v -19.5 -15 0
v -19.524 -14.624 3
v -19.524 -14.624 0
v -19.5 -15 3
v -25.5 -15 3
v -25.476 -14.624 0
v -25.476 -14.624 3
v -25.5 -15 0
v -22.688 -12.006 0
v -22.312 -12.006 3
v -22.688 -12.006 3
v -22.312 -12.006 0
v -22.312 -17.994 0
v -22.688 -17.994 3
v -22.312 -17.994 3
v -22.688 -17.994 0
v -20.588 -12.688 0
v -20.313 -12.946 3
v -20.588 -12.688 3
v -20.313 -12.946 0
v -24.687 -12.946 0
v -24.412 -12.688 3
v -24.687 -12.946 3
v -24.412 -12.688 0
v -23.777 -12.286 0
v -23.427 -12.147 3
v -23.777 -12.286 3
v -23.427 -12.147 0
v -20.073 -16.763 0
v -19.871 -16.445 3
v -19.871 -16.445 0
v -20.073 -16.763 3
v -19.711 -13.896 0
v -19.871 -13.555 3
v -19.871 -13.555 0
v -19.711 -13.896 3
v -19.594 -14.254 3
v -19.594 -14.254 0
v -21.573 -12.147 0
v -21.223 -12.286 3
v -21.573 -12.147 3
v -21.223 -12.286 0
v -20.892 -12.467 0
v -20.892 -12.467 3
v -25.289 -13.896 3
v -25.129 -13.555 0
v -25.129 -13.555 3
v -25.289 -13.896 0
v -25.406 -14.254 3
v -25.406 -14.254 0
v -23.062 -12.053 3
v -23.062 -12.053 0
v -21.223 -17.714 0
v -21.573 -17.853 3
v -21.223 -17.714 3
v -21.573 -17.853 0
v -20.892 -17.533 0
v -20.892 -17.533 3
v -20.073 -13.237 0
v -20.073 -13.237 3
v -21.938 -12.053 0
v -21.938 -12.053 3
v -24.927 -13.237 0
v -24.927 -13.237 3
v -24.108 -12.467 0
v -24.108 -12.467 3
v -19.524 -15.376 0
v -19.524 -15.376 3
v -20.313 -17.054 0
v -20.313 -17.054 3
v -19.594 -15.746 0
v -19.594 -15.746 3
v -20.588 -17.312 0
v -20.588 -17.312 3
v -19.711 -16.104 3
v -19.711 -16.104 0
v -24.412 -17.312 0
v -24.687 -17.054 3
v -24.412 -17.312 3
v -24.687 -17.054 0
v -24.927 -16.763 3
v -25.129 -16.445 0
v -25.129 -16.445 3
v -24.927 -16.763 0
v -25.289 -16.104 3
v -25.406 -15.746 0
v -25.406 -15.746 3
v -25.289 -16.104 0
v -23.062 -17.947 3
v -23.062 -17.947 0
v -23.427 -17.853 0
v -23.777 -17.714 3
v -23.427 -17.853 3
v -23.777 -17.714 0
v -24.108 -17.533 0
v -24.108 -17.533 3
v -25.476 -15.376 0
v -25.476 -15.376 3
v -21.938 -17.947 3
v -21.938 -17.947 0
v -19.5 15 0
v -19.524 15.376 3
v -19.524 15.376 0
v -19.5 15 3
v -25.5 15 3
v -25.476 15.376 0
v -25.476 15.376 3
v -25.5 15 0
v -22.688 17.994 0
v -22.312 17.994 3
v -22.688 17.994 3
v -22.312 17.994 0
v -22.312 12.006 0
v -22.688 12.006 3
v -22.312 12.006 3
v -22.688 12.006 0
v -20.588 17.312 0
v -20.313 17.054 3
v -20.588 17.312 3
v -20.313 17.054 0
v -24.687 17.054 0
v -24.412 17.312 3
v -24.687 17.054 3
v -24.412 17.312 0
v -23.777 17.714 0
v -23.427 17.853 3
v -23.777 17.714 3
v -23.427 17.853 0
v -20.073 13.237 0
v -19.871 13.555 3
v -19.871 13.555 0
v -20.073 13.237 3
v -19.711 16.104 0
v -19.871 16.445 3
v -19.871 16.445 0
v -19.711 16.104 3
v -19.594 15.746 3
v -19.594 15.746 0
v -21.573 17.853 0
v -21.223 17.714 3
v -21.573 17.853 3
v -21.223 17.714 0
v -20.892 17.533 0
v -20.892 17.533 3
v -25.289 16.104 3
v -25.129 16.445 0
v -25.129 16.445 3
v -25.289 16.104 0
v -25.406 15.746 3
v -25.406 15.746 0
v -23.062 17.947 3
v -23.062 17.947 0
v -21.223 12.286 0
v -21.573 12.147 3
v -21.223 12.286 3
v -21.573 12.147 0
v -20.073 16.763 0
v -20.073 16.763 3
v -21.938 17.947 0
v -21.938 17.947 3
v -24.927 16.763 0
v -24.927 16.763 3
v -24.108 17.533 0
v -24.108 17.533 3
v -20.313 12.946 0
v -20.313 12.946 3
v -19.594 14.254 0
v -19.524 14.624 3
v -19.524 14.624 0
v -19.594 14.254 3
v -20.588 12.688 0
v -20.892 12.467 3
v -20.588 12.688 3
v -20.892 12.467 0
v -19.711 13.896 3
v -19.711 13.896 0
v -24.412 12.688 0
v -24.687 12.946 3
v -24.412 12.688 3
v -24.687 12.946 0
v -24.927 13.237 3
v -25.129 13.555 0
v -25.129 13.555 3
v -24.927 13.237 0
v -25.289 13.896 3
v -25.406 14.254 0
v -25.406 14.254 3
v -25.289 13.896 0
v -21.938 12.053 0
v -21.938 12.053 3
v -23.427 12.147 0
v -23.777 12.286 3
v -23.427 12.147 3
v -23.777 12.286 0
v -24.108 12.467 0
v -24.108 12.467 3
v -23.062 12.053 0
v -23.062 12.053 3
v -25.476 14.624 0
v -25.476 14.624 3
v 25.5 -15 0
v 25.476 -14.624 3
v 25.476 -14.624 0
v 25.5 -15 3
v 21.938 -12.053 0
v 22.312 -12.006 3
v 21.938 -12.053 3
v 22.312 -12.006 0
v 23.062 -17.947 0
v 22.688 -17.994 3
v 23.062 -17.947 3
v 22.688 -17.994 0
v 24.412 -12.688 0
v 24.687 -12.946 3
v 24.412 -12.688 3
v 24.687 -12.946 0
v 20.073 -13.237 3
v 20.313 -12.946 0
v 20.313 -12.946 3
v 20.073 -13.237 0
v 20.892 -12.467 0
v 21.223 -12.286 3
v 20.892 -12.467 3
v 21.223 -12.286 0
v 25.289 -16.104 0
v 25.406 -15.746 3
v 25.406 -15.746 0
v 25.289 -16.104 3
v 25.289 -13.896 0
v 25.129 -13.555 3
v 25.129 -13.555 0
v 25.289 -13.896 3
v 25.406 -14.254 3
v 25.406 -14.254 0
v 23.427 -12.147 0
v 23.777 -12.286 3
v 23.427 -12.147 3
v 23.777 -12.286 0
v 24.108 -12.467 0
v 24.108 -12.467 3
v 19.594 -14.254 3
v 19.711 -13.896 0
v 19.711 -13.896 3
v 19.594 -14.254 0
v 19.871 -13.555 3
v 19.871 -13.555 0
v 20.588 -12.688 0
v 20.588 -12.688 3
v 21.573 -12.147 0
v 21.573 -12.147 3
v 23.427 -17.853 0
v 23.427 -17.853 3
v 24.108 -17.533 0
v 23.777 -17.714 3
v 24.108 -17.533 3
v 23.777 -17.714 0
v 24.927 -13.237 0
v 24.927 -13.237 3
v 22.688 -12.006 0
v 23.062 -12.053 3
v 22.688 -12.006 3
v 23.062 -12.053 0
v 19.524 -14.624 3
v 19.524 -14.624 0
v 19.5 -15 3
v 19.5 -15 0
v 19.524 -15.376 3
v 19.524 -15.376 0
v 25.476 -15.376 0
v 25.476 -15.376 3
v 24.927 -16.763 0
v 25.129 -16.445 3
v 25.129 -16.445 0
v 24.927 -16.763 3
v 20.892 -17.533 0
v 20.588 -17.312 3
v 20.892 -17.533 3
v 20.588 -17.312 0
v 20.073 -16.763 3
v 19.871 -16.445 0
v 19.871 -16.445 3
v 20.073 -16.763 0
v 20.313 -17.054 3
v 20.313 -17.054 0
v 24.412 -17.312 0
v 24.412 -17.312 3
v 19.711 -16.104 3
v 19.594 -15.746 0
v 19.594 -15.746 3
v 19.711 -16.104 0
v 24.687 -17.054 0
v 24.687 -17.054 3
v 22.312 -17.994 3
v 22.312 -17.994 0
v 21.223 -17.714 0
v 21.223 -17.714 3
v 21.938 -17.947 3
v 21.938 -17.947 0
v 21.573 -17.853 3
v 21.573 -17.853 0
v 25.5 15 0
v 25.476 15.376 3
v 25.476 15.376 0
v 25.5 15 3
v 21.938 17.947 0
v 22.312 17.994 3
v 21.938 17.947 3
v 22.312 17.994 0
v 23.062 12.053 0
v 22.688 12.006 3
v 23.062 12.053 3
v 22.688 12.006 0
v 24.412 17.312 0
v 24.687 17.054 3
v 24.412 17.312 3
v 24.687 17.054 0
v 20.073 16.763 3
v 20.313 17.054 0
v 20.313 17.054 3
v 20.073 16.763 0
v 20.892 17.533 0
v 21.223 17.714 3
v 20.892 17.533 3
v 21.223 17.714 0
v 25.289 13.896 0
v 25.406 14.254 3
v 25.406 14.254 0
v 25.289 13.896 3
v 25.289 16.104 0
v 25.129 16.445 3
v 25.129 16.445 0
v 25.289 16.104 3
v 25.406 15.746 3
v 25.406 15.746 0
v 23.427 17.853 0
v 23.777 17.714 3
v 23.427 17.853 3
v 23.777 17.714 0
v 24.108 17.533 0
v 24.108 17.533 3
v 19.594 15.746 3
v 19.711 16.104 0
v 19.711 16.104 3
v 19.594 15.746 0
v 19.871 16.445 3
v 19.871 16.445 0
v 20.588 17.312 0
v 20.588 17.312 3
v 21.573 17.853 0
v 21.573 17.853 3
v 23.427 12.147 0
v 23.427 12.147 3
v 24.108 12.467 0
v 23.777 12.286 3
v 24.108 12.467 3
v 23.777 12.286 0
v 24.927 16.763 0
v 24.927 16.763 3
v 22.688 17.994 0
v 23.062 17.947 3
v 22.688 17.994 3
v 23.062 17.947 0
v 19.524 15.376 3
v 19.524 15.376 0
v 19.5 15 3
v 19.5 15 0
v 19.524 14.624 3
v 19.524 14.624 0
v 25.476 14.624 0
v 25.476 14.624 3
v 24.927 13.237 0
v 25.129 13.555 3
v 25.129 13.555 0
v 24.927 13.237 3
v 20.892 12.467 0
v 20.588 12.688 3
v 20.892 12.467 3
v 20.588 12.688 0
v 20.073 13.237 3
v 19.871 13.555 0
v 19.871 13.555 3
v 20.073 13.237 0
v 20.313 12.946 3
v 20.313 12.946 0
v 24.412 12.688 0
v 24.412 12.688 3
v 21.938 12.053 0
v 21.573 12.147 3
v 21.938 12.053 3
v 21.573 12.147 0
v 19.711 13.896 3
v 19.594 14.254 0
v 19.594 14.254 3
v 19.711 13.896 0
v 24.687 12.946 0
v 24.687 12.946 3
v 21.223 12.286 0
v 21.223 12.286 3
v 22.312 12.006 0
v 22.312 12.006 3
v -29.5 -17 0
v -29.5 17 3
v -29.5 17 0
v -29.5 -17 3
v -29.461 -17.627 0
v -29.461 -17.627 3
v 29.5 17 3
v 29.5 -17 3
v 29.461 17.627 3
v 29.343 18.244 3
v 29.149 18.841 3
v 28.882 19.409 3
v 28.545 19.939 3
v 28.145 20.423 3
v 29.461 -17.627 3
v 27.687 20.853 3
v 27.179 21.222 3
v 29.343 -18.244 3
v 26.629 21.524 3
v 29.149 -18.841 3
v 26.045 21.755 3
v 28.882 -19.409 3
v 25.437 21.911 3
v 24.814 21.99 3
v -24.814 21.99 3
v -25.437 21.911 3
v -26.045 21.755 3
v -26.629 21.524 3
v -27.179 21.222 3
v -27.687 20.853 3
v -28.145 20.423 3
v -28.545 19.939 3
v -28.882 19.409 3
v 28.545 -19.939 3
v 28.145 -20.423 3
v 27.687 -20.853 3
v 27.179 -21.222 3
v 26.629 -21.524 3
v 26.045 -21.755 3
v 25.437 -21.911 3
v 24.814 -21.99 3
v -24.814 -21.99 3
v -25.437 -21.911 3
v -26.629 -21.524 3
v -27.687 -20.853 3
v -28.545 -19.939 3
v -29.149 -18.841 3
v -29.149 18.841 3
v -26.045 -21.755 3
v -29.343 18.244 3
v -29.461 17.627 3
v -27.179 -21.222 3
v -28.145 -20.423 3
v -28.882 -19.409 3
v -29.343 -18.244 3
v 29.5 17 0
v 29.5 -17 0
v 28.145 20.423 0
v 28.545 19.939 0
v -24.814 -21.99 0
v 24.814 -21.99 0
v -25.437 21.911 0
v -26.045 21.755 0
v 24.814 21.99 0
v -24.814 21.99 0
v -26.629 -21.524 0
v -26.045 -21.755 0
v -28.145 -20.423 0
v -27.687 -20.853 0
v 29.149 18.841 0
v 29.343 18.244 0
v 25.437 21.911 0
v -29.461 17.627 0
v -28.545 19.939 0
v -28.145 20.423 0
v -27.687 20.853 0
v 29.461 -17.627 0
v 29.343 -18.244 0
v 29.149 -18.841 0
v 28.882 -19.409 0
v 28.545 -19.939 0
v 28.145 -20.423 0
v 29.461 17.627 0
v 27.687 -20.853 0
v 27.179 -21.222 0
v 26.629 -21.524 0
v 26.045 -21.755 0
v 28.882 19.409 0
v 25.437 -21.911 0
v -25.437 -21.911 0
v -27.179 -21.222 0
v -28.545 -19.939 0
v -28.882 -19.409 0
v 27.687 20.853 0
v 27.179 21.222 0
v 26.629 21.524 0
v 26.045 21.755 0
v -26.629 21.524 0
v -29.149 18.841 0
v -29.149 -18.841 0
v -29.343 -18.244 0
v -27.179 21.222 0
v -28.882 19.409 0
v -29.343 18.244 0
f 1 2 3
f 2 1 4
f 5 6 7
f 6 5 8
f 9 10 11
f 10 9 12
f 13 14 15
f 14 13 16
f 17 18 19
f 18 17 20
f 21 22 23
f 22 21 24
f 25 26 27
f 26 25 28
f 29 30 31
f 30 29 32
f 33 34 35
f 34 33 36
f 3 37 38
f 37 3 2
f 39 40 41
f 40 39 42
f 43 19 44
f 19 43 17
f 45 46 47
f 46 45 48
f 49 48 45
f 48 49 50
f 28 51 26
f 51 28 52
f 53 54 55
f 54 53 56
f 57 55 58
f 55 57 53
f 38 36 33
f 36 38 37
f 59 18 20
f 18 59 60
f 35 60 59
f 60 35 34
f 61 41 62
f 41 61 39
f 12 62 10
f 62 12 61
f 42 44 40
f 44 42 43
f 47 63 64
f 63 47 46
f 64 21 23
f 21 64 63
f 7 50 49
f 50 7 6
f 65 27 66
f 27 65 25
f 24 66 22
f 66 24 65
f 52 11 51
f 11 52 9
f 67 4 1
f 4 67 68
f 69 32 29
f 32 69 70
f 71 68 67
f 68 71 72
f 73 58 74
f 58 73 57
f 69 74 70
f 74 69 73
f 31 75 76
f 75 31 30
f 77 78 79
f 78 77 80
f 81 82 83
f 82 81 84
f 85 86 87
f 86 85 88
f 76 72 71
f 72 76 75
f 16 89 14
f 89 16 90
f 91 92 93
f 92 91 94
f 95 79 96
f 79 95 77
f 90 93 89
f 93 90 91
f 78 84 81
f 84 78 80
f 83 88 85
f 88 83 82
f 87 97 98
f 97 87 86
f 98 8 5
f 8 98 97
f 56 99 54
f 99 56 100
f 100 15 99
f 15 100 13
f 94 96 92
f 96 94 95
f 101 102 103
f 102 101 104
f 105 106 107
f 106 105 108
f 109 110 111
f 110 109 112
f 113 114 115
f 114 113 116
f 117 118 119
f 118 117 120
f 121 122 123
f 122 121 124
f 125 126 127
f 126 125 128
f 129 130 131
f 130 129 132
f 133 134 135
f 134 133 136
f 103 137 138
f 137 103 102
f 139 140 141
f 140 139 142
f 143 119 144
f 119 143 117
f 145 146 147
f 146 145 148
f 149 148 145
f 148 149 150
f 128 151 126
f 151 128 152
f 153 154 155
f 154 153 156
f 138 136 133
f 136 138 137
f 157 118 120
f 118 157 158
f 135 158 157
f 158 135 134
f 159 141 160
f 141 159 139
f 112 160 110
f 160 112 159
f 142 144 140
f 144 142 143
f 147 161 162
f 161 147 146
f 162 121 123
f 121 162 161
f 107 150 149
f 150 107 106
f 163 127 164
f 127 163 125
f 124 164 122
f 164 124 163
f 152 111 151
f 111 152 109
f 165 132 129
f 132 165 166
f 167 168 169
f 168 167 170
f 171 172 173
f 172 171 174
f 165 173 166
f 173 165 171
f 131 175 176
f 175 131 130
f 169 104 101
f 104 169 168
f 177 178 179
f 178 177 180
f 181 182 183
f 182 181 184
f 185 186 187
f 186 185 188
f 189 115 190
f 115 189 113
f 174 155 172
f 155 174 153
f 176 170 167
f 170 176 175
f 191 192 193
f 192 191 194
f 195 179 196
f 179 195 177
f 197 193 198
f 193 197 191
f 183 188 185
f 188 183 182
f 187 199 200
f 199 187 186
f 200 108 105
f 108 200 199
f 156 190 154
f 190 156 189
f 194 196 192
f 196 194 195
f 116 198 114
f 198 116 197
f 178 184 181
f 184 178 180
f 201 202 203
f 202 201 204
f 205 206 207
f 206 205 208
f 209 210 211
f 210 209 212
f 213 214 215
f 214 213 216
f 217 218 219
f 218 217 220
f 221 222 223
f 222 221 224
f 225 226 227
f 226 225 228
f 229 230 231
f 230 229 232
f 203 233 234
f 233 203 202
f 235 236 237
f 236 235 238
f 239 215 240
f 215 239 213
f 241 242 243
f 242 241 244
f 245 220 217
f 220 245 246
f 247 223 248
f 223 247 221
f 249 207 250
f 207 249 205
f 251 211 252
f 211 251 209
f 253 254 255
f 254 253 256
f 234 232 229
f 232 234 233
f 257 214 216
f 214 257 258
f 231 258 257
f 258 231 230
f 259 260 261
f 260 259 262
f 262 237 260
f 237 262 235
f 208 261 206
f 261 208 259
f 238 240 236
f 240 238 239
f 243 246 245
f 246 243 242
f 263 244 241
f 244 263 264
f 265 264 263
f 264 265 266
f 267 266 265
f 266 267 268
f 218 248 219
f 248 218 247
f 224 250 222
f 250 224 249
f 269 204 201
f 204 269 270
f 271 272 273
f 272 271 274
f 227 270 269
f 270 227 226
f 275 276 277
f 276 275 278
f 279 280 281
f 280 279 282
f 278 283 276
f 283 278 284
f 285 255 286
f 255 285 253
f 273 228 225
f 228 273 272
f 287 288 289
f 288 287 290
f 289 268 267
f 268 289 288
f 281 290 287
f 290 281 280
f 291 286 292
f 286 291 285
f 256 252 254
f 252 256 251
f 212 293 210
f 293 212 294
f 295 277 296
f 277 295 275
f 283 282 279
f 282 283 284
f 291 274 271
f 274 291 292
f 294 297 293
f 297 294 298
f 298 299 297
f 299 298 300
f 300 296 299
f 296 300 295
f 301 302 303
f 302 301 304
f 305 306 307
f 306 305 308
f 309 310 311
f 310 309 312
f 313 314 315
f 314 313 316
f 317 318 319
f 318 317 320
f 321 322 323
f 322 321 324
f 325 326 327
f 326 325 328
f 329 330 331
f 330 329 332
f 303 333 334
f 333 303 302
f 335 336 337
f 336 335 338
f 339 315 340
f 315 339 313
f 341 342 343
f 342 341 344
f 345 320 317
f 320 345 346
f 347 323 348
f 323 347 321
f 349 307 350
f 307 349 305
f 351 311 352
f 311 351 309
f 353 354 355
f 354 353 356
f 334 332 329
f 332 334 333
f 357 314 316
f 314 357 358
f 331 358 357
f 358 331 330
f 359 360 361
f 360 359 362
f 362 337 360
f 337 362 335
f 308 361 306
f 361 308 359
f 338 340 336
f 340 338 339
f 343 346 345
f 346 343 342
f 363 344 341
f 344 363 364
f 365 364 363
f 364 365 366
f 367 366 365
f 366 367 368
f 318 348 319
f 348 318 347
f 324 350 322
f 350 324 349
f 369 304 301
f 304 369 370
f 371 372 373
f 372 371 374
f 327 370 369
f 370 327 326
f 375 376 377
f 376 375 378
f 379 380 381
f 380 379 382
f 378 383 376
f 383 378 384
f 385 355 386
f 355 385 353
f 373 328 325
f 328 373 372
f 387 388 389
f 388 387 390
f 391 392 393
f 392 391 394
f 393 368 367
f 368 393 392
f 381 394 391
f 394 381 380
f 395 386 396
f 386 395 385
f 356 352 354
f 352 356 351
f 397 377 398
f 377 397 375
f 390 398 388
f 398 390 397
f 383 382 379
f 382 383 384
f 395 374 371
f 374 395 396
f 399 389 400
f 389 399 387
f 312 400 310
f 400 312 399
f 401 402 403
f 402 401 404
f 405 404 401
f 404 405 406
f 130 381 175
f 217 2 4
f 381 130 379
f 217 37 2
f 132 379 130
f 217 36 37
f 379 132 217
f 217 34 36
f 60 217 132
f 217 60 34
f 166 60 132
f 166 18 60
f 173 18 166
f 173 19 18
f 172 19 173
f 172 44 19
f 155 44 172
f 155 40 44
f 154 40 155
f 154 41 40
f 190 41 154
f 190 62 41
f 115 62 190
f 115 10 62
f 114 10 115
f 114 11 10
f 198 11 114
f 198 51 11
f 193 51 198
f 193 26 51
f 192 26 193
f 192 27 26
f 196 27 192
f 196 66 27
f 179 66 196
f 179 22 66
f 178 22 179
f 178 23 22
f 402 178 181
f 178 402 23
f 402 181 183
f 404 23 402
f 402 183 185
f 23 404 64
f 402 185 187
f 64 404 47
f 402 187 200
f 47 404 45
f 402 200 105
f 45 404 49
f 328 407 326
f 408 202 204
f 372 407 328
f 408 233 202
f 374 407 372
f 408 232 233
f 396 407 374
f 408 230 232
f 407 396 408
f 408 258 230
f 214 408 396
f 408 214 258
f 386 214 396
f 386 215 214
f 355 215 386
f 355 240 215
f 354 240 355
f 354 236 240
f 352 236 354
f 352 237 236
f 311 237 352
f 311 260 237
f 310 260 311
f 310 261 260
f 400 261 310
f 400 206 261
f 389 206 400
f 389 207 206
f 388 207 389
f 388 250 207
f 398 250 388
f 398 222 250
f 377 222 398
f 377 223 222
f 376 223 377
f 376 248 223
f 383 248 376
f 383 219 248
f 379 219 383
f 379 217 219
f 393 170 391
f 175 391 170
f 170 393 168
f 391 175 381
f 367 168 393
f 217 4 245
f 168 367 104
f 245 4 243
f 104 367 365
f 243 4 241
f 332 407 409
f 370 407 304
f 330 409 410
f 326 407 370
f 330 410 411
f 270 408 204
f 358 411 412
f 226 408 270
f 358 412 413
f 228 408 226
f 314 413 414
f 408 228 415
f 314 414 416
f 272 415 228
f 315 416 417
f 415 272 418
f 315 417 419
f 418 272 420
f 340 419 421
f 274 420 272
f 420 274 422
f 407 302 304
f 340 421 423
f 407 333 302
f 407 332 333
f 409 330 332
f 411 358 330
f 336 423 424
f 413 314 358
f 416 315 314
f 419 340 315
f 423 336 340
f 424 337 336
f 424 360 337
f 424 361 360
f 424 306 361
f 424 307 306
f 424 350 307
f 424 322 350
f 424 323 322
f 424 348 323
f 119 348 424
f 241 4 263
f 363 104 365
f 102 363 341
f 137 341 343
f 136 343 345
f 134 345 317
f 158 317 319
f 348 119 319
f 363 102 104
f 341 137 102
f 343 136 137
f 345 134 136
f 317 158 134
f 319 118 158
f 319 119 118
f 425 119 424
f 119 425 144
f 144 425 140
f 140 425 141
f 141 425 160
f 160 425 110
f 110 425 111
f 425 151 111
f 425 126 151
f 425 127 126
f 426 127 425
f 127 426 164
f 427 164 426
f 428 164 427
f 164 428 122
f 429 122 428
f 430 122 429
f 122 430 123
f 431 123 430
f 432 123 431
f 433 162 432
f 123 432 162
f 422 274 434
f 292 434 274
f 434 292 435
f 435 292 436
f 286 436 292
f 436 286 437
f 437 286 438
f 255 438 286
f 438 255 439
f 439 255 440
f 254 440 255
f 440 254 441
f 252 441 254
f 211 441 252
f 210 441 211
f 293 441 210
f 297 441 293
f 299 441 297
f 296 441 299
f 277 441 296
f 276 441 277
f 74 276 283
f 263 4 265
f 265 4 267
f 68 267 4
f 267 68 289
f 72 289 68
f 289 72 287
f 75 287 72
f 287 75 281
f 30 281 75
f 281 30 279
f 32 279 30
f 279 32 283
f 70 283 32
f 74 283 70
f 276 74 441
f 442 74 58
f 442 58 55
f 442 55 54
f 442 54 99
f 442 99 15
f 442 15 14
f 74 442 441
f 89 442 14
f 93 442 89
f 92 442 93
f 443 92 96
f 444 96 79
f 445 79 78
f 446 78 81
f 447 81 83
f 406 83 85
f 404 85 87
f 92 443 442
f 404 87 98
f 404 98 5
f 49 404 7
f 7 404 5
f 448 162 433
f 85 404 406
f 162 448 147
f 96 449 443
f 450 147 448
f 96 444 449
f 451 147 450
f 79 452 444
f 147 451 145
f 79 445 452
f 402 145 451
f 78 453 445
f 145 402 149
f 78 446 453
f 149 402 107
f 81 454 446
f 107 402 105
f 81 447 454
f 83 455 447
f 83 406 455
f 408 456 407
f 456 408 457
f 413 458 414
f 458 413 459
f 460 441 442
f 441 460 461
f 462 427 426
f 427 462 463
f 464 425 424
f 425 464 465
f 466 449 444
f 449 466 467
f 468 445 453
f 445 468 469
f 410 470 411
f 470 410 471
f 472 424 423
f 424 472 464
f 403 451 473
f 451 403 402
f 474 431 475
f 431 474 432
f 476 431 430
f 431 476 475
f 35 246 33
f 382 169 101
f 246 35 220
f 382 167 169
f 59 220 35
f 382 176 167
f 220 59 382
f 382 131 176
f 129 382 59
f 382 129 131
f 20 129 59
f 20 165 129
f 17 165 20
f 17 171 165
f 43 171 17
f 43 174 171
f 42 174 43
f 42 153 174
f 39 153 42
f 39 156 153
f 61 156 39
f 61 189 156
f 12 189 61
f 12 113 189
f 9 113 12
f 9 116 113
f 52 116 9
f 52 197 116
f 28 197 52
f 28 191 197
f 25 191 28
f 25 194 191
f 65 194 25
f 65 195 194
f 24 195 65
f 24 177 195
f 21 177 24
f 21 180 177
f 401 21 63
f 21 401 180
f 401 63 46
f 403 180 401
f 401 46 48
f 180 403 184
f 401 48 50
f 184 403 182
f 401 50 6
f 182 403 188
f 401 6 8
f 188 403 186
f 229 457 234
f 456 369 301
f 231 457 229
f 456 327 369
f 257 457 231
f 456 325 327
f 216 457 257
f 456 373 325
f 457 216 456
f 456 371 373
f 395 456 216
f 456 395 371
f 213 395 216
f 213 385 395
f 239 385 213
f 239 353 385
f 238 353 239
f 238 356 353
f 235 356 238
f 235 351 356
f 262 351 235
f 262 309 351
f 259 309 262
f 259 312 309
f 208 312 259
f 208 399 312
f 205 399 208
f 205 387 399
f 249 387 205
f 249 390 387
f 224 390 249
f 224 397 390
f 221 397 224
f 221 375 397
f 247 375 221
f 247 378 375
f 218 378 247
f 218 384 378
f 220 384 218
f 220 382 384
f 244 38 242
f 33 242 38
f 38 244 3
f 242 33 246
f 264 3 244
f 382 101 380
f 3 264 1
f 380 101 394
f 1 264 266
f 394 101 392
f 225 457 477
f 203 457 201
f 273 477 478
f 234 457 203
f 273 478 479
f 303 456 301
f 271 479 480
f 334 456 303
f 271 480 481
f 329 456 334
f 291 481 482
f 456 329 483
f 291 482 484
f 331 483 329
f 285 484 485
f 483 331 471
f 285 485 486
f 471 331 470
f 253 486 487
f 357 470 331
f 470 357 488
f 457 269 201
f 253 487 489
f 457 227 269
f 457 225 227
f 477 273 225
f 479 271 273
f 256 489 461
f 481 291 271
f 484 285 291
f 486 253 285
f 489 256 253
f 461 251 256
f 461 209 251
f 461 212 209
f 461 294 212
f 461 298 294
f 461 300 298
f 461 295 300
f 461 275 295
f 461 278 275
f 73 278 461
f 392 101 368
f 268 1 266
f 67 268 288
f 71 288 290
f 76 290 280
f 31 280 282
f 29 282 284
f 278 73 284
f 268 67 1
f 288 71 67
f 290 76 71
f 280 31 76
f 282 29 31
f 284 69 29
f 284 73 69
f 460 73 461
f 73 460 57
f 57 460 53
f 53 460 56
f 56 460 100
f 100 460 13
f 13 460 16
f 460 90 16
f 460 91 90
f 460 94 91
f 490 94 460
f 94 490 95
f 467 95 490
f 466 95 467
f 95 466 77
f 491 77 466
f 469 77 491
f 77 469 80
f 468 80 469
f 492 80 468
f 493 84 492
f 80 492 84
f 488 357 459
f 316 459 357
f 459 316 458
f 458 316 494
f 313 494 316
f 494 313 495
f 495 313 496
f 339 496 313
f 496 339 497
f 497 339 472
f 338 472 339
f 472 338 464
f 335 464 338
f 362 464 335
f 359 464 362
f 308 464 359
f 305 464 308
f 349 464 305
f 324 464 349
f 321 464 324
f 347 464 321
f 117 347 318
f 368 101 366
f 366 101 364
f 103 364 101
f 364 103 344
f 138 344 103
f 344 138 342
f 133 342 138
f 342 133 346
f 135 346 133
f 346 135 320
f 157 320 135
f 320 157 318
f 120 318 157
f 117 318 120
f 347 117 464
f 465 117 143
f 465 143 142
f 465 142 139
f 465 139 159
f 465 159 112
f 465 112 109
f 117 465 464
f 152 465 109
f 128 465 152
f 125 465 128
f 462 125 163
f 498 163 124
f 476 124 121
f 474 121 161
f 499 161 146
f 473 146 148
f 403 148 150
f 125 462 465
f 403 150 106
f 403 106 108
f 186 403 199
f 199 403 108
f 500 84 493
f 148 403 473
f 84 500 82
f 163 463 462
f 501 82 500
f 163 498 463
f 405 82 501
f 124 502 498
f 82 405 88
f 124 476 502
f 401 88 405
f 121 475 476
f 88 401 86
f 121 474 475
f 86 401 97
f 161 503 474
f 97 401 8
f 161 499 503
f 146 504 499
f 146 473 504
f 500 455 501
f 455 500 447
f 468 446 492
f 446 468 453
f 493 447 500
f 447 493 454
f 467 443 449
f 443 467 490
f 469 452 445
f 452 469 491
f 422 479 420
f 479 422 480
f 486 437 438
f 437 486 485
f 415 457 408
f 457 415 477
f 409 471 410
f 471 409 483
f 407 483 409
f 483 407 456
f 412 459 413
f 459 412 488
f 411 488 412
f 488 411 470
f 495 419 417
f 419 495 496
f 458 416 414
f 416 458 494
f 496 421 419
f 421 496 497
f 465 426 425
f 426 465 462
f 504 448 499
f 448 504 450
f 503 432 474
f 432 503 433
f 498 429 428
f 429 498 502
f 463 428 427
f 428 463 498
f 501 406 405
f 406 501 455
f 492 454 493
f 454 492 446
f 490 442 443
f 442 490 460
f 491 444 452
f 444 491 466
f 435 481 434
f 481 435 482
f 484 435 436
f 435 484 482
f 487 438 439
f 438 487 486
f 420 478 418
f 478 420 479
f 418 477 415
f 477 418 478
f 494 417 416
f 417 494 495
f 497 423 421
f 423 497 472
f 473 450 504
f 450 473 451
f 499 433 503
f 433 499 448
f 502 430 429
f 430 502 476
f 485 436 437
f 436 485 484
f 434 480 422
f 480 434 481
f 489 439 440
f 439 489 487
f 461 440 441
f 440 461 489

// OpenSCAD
$fn = 50;


difference() {
	union() {
		hull() {
			translate(v = [-24.5000000000, 17.0000000000, 0]) {
				cylinder(h = 3, r = 5);
			}
			translate(v = [24.5000000000, 17.0000000000, 0]) {
				cylinder(h = 3, r = 5);
			}
			translate(v = [-24.5000000000, -17.0000000000, 0]) {
				cylinder(h = 3, r = 5);
			}
			translate(v = [24.5000000000, -17.0000000000, 0]) {
				cylinder(h = 3, r = 5);
			}
		}
	}
	union() {
		translate(v = [-22.5000000000, -15.0000000000, -100.0000000000]) {
			cylinder(h = 200, r = 3.0000000000);
		}
		translate(v = [-22.5000000000, 15.0000000000, -100.0000000000]) {
			cylinder(h = 200, r = 3.0000000000);
		}
		translate(v = [22.5000000000, -15.0000000000, -100.0000000000]) {
			cylinder(h = 200, r = 3.0000000000);
		}
		translate(v = [22.5000000000, 15.0000000000, -100.0000000000]) {
			cylinder(h = 200, r = 3.0000000000);
		}
	}
}
